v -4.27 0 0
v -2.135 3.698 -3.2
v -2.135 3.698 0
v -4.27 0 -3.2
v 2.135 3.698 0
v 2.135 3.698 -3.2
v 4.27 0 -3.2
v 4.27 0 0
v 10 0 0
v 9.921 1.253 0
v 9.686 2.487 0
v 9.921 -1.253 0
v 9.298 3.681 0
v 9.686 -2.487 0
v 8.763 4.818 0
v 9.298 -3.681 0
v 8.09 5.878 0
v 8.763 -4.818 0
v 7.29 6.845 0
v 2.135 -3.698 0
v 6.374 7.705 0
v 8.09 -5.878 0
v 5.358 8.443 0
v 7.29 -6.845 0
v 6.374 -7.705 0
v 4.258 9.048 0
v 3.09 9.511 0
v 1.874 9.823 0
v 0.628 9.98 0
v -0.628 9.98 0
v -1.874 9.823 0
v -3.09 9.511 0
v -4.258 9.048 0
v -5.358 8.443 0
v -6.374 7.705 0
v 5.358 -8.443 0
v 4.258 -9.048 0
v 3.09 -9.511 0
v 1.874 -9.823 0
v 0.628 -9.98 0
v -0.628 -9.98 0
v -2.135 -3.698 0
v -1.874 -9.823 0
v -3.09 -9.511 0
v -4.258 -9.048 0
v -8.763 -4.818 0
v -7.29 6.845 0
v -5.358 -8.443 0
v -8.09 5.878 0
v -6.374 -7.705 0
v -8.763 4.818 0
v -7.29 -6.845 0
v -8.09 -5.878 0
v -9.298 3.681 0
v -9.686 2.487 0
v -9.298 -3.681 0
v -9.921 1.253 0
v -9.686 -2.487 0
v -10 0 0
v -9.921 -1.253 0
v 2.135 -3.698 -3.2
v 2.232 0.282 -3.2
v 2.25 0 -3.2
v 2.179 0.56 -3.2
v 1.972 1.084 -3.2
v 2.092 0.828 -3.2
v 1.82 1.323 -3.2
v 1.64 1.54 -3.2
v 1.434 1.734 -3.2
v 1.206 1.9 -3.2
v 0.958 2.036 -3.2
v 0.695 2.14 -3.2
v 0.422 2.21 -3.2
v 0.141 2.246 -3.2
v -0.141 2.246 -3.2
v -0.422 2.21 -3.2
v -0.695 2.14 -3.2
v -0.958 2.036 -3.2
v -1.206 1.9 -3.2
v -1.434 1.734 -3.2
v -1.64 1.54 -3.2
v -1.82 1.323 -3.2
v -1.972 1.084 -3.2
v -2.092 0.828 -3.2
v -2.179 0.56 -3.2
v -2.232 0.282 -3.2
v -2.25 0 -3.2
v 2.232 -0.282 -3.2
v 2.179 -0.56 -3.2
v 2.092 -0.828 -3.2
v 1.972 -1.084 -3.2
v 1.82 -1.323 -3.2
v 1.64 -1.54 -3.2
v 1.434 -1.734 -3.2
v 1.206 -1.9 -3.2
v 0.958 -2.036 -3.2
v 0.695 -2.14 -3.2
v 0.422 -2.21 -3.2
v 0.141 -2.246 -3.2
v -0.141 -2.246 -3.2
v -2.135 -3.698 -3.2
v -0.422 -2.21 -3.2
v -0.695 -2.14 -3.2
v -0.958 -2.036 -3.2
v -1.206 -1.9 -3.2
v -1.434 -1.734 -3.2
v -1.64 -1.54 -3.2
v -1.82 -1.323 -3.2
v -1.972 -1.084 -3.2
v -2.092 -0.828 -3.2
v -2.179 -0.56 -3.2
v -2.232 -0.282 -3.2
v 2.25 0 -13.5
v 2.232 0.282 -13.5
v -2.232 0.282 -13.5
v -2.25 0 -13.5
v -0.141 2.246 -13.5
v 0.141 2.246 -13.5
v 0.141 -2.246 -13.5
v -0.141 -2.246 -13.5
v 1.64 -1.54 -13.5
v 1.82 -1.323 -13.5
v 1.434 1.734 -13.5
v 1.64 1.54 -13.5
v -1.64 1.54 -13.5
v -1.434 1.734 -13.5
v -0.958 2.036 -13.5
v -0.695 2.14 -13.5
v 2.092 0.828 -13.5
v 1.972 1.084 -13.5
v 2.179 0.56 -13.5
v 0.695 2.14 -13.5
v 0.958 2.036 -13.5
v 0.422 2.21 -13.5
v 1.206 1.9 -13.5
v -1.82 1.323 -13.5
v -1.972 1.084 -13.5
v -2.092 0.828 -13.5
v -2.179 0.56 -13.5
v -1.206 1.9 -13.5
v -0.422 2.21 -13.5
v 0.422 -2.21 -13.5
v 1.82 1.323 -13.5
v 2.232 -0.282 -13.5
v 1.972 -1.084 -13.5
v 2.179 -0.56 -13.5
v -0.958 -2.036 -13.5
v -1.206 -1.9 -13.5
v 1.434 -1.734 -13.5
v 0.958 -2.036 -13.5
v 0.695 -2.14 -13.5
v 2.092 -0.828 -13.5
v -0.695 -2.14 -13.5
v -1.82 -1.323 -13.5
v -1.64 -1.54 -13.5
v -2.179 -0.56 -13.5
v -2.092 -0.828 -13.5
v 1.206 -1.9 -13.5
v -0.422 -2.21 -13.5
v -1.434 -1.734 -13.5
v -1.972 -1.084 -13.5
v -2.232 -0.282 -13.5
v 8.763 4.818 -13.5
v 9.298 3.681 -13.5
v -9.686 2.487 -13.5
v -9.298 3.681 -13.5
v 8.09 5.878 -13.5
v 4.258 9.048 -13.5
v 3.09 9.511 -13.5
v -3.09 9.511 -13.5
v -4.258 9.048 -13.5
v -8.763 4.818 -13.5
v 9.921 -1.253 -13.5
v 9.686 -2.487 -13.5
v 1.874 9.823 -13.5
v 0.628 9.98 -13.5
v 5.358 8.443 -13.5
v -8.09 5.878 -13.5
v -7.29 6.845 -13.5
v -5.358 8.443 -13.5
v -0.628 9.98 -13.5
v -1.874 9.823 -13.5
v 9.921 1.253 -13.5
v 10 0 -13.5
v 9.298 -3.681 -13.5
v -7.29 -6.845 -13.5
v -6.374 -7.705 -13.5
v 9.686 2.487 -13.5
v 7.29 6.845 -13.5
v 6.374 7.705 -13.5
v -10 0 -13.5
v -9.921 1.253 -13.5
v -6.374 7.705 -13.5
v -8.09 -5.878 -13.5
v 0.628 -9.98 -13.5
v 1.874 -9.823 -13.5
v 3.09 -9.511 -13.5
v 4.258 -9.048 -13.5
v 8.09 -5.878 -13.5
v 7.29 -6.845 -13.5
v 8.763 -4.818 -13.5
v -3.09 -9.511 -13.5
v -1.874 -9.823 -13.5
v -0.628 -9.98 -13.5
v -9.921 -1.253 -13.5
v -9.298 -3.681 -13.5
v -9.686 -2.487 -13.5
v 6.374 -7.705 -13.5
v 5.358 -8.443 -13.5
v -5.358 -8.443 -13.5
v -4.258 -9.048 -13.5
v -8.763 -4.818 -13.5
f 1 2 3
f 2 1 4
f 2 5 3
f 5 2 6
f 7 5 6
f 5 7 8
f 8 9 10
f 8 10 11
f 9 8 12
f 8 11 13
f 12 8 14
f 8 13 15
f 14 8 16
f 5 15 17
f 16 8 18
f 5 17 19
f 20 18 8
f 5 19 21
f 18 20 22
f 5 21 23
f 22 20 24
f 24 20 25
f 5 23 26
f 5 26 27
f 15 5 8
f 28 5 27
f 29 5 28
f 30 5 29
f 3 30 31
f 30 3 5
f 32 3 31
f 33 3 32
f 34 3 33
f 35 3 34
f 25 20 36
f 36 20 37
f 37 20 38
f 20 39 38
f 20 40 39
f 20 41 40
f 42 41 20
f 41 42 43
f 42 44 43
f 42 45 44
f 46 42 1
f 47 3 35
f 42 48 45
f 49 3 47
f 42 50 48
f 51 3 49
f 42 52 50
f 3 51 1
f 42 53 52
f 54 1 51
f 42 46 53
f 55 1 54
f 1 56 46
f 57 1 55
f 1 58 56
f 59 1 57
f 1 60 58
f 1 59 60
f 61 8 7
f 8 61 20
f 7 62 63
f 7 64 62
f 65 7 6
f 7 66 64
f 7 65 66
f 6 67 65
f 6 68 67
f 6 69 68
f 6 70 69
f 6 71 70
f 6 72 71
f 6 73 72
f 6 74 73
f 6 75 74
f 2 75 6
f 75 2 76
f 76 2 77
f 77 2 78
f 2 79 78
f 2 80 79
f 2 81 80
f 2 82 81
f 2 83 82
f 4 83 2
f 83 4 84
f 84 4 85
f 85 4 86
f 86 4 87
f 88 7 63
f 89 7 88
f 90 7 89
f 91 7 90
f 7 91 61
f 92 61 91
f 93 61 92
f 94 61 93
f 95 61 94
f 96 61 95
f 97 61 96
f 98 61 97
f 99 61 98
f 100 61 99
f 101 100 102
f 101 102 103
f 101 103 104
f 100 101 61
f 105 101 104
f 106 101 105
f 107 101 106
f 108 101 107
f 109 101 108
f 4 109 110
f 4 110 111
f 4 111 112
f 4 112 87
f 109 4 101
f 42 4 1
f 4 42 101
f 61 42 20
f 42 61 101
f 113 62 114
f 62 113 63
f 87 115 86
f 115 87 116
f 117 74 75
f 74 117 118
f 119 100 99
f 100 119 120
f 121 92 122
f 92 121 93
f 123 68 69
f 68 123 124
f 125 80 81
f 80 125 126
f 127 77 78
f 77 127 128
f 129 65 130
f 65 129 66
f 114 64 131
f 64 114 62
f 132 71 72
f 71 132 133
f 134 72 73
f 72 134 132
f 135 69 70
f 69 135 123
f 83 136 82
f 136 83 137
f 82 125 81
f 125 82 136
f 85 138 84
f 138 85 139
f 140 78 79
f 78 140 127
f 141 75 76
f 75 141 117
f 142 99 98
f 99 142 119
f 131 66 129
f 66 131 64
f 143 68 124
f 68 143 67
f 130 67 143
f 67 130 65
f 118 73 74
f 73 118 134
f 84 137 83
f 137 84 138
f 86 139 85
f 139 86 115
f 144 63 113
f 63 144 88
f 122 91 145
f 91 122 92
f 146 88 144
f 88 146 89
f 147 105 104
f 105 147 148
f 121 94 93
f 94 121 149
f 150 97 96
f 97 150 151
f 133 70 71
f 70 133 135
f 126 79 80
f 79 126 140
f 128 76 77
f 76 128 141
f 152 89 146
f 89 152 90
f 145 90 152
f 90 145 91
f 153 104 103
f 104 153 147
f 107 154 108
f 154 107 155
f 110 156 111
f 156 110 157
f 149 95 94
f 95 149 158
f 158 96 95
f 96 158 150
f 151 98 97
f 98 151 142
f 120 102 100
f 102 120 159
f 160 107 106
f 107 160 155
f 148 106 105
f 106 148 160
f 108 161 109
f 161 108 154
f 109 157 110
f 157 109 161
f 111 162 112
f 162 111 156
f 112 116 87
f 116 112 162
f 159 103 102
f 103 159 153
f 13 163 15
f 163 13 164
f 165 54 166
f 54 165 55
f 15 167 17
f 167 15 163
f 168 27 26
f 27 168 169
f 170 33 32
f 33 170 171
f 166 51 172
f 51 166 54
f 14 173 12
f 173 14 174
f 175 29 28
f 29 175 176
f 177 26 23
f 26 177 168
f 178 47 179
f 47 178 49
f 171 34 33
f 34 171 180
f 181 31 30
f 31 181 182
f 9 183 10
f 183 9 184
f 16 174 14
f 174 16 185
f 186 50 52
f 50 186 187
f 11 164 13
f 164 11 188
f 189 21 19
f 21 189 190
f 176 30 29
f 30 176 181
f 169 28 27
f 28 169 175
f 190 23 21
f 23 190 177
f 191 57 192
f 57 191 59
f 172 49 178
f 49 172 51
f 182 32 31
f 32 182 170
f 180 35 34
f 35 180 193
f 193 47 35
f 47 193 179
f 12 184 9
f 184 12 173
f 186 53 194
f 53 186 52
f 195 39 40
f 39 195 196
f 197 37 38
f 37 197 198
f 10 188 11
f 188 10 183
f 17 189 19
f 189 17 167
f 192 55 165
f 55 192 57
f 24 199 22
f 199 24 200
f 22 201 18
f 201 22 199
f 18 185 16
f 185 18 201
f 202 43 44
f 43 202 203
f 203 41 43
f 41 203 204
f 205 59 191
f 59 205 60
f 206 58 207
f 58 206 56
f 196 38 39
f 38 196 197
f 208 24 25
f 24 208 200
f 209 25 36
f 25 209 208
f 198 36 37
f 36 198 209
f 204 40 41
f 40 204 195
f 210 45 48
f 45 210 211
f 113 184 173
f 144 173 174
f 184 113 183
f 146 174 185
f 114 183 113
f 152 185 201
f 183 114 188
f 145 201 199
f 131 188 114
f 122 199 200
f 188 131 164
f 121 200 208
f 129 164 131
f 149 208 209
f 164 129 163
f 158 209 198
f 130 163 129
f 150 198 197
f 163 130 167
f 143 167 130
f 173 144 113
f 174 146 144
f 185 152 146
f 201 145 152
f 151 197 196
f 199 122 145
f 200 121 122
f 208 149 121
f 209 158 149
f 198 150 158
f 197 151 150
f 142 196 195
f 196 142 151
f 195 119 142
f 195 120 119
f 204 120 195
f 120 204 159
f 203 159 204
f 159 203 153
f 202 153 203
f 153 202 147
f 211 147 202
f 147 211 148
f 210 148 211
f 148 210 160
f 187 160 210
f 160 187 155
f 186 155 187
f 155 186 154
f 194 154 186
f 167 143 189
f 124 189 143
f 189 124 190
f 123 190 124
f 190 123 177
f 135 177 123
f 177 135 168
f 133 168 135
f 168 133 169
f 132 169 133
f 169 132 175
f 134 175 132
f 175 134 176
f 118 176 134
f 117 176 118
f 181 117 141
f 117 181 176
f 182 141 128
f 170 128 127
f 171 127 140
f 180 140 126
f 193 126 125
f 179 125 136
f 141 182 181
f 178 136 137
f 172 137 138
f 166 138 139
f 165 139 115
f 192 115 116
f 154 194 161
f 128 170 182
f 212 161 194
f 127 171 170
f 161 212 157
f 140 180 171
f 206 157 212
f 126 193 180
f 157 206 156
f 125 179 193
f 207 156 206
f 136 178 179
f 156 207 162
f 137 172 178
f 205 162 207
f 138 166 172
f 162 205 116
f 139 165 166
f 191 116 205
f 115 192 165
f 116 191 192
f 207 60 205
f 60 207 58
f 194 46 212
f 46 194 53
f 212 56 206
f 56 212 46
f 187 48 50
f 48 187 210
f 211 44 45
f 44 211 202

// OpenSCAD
$fn = 50;


difference() {
	union() {
		translate(v = [0, 0, -13.5000000000]) {
			cylinder(h = 13.5000000000, r = 10.0000000000);
		}
	}
	union() {
		translate(v = [0, 0, 0]) {
			rotate(a = [0, 0, 0]) {
				difference() {
					union() {
						translate(v = [0, 0, -3.2000000000]) {
							linear_extrude(height = 3.2000000000) {
								polygon(points = [[4.2698000000, 0.0000000000], [2.1349000000, 3.6977552691], [-2.1349000000, 3.6977552691], [-4.2698000000, 0.0000000000], [-2.1349000000, -3.6977552691], [2.1349000000, -3.6977552691]]);
							}
						}
					}
					union();
				}
			}
		}
		#translate(v = [0, 0, -100.0000000000]) {
			cylinder(h = 200, r = 2.2500000000);
		}
	}
}
